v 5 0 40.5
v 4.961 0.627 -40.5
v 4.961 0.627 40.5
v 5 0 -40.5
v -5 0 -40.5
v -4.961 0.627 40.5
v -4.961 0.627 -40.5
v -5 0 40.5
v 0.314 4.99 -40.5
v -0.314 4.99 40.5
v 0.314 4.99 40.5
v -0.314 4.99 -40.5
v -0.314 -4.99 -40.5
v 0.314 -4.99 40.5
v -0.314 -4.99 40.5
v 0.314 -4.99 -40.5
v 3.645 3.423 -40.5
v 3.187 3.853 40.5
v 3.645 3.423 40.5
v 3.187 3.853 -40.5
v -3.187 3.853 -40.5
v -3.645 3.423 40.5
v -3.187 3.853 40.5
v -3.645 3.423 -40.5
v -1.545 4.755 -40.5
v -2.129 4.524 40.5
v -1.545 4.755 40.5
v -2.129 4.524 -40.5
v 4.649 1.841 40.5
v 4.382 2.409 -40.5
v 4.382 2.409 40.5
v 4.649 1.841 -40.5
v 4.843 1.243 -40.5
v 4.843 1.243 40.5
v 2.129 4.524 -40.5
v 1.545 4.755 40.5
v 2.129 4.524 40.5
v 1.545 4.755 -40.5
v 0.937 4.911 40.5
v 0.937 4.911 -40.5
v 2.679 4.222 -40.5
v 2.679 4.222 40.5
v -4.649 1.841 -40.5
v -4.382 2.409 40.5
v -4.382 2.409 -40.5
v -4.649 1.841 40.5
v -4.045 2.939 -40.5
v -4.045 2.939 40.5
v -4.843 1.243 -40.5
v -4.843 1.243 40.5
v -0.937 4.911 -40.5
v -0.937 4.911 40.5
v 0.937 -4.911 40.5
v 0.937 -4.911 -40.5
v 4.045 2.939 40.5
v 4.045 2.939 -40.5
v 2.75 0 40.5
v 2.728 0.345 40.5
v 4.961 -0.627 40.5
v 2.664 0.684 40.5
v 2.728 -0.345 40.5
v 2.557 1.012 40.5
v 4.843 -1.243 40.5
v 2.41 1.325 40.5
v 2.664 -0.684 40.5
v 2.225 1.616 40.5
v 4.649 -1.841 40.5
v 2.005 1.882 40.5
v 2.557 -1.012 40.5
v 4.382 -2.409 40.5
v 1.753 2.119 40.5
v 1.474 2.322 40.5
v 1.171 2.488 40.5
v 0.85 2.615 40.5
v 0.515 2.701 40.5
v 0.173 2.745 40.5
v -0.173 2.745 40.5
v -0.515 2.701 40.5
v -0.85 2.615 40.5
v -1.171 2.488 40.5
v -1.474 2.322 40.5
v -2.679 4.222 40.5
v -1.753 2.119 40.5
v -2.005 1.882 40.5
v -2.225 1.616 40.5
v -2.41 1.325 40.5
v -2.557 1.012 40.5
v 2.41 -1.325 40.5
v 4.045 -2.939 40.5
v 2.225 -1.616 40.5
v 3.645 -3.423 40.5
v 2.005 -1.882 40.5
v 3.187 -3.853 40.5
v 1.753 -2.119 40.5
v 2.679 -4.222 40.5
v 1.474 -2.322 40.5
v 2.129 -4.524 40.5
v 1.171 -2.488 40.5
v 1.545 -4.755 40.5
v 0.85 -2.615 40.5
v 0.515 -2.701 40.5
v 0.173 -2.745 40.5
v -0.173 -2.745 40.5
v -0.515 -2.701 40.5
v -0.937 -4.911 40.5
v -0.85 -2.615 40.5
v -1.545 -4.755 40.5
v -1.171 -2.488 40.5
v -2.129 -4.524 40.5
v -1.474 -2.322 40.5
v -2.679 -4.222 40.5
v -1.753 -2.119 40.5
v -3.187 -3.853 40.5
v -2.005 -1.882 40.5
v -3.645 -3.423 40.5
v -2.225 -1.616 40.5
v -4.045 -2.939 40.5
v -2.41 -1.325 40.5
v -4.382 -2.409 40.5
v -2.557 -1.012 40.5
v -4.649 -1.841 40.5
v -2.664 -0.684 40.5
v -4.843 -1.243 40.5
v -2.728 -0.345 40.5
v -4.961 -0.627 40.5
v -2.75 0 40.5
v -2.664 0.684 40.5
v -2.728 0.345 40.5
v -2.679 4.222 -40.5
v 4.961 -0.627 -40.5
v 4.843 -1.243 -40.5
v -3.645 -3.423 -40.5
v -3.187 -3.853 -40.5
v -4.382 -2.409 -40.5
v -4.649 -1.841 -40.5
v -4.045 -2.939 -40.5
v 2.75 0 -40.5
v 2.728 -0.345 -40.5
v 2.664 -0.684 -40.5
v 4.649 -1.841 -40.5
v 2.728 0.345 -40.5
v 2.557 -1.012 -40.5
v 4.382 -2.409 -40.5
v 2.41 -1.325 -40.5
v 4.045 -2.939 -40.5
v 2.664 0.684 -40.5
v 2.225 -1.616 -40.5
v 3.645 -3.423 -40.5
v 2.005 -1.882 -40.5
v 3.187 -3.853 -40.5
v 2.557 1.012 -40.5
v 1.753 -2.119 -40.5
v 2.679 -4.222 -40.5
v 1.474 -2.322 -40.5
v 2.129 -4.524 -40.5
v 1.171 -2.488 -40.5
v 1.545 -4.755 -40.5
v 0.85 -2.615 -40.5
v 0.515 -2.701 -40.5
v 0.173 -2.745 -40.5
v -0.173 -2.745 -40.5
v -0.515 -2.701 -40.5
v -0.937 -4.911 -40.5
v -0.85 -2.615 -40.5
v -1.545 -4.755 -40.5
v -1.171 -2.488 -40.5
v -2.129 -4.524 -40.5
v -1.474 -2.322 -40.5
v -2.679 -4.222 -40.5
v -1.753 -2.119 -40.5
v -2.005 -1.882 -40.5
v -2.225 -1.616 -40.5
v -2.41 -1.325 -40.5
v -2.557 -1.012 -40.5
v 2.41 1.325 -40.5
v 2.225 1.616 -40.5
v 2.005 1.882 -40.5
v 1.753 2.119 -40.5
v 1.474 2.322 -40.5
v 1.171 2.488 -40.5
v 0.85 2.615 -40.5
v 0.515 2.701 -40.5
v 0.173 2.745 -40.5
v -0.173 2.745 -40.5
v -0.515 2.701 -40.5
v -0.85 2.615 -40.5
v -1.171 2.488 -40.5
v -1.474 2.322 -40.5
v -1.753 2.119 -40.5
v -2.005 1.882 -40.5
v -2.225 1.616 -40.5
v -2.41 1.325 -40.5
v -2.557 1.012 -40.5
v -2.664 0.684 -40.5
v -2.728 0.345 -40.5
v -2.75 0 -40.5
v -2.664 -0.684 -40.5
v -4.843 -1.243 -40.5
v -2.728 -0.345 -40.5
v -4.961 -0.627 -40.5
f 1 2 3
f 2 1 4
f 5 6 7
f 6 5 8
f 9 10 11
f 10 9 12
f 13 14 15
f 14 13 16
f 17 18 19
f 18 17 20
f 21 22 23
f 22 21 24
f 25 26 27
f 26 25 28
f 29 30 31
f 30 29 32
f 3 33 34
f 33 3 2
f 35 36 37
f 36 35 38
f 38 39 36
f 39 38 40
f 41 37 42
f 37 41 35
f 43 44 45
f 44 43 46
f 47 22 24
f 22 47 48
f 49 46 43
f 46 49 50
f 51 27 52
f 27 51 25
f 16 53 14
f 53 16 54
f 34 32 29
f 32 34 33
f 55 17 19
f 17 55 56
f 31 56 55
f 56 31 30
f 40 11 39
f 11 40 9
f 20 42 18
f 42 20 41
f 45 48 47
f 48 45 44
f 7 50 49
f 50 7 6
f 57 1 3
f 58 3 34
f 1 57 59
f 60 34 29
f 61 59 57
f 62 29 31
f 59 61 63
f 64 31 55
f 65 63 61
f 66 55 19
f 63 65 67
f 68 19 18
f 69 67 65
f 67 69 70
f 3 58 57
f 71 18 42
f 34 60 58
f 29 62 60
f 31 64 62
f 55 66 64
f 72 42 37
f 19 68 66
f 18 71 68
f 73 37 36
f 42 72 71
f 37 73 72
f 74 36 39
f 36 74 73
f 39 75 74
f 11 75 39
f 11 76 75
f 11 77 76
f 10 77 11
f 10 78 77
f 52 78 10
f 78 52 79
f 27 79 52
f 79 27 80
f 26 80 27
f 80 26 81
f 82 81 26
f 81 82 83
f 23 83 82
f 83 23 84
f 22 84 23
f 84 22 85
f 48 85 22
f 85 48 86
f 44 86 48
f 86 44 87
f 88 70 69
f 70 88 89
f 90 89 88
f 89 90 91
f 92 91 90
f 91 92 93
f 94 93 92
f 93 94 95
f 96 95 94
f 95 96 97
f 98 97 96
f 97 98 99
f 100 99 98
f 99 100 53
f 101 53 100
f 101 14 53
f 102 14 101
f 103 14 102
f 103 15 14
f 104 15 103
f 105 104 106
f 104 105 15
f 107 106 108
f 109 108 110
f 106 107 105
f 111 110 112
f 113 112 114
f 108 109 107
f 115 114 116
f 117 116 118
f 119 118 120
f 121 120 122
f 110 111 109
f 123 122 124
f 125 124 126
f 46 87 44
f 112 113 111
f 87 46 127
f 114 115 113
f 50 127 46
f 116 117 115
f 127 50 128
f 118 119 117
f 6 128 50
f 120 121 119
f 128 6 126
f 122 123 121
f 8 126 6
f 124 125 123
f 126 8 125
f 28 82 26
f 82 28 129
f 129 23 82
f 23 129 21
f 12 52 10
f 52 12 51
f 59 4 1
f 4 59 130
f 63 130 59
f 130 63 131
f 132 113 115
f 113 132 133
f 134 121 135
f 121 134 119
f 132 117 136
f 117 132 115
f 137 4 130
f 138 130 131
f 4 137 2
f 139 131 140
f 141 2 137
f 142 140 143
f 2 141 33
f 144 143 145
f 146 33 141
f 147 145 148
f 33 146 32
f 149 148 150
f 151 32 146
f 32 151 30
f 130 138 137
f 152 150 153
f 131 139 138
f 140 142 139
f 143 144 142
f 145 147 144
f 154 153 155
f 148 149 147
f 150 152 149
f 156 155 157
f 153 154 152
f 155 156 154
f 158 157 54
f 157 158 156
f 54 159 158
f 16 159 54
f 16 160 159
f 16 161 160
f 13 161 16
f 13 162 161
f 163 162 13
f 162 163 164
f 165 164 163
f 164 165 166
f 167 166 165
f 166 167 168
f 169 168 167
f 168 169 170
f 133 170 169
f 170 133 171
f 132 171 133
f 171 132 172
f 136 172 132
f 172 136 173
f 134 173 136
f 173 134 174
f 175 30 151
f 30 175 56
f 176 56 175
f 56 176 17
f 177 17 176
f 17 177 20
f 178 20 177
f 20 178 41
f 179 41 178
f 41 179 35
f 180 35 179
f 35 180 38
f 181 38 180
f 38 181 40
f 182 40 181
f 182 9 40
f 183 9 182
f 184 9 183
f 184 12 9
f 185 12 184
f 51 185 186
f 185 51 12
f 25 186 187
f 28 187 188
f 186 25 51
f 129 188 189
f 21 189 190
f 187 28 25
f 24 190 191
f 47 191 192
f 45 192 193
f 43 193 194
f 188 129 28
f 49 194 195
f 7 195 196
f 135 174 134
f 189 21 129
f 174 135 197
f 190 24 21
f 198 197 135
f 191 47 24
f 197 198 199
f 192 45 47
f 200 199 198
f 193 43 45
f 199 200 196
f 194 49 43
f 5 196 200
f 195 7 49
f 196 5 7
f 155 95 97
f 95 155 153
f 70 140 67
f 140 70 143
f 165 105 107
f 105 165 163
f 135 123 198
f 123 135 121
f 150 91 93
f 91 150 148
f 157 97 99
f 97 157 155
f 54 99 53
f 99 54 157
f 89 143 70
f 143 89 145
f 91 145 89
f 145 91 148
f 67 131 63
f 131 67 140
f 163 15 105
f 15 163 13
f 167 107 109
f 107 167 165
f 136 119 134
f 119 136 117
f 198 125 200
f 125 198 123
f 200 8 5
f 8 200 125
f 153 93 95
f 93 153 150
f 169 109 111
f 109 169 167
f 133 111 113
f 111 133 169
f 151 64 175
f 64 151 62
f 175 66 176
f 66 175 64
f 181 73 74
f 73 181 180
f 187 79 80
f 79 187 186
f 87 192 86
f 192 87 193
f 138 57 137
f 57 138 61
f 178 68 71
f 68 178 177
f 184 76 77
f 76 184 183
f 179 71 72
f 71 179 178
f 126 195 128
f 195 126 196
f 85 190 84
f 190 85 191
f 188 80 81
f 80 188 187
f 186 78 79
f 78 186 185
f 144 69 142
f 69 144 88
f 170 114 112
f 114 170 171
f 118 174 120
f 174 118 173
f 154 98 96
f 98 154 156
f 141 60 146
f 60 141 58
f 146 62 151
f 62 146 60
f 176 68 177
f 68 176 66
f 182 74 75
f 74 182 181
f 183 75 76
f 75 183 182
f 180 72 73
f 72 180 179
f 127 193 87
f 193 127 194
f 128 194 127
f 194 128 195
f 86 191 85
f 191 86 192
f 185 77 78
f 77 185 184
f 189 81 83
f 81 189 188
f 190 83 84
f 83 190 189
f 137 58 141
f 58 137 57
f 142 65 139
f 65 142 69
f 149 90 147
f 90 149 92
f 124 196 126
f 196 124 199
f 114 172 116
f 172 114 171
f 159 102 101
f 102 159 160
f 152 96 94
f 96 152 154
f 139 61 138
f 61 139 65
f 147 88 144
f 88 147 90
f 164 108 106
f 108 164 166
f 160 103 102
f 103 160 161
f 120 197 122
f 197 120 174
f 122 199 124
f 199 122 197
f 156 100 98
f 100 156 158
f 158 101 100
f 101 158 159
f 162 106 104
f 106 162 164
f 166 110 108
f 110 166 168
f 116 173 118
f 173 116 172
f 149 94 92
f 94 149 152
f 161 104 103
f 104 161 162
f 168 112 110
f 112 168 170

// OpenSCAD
$fn = 50;


difference() {
	union() {
		translate(v = [0, 0, -40.5000000000]) {
			cylinder(h = 81, r = 5.0000000000);
		}
	}
	union() {
		translate(v = [0, 0, -100.0000000000]) {
			cylinder(h = 200, r = 2.7500000000);
		}
	}
}
